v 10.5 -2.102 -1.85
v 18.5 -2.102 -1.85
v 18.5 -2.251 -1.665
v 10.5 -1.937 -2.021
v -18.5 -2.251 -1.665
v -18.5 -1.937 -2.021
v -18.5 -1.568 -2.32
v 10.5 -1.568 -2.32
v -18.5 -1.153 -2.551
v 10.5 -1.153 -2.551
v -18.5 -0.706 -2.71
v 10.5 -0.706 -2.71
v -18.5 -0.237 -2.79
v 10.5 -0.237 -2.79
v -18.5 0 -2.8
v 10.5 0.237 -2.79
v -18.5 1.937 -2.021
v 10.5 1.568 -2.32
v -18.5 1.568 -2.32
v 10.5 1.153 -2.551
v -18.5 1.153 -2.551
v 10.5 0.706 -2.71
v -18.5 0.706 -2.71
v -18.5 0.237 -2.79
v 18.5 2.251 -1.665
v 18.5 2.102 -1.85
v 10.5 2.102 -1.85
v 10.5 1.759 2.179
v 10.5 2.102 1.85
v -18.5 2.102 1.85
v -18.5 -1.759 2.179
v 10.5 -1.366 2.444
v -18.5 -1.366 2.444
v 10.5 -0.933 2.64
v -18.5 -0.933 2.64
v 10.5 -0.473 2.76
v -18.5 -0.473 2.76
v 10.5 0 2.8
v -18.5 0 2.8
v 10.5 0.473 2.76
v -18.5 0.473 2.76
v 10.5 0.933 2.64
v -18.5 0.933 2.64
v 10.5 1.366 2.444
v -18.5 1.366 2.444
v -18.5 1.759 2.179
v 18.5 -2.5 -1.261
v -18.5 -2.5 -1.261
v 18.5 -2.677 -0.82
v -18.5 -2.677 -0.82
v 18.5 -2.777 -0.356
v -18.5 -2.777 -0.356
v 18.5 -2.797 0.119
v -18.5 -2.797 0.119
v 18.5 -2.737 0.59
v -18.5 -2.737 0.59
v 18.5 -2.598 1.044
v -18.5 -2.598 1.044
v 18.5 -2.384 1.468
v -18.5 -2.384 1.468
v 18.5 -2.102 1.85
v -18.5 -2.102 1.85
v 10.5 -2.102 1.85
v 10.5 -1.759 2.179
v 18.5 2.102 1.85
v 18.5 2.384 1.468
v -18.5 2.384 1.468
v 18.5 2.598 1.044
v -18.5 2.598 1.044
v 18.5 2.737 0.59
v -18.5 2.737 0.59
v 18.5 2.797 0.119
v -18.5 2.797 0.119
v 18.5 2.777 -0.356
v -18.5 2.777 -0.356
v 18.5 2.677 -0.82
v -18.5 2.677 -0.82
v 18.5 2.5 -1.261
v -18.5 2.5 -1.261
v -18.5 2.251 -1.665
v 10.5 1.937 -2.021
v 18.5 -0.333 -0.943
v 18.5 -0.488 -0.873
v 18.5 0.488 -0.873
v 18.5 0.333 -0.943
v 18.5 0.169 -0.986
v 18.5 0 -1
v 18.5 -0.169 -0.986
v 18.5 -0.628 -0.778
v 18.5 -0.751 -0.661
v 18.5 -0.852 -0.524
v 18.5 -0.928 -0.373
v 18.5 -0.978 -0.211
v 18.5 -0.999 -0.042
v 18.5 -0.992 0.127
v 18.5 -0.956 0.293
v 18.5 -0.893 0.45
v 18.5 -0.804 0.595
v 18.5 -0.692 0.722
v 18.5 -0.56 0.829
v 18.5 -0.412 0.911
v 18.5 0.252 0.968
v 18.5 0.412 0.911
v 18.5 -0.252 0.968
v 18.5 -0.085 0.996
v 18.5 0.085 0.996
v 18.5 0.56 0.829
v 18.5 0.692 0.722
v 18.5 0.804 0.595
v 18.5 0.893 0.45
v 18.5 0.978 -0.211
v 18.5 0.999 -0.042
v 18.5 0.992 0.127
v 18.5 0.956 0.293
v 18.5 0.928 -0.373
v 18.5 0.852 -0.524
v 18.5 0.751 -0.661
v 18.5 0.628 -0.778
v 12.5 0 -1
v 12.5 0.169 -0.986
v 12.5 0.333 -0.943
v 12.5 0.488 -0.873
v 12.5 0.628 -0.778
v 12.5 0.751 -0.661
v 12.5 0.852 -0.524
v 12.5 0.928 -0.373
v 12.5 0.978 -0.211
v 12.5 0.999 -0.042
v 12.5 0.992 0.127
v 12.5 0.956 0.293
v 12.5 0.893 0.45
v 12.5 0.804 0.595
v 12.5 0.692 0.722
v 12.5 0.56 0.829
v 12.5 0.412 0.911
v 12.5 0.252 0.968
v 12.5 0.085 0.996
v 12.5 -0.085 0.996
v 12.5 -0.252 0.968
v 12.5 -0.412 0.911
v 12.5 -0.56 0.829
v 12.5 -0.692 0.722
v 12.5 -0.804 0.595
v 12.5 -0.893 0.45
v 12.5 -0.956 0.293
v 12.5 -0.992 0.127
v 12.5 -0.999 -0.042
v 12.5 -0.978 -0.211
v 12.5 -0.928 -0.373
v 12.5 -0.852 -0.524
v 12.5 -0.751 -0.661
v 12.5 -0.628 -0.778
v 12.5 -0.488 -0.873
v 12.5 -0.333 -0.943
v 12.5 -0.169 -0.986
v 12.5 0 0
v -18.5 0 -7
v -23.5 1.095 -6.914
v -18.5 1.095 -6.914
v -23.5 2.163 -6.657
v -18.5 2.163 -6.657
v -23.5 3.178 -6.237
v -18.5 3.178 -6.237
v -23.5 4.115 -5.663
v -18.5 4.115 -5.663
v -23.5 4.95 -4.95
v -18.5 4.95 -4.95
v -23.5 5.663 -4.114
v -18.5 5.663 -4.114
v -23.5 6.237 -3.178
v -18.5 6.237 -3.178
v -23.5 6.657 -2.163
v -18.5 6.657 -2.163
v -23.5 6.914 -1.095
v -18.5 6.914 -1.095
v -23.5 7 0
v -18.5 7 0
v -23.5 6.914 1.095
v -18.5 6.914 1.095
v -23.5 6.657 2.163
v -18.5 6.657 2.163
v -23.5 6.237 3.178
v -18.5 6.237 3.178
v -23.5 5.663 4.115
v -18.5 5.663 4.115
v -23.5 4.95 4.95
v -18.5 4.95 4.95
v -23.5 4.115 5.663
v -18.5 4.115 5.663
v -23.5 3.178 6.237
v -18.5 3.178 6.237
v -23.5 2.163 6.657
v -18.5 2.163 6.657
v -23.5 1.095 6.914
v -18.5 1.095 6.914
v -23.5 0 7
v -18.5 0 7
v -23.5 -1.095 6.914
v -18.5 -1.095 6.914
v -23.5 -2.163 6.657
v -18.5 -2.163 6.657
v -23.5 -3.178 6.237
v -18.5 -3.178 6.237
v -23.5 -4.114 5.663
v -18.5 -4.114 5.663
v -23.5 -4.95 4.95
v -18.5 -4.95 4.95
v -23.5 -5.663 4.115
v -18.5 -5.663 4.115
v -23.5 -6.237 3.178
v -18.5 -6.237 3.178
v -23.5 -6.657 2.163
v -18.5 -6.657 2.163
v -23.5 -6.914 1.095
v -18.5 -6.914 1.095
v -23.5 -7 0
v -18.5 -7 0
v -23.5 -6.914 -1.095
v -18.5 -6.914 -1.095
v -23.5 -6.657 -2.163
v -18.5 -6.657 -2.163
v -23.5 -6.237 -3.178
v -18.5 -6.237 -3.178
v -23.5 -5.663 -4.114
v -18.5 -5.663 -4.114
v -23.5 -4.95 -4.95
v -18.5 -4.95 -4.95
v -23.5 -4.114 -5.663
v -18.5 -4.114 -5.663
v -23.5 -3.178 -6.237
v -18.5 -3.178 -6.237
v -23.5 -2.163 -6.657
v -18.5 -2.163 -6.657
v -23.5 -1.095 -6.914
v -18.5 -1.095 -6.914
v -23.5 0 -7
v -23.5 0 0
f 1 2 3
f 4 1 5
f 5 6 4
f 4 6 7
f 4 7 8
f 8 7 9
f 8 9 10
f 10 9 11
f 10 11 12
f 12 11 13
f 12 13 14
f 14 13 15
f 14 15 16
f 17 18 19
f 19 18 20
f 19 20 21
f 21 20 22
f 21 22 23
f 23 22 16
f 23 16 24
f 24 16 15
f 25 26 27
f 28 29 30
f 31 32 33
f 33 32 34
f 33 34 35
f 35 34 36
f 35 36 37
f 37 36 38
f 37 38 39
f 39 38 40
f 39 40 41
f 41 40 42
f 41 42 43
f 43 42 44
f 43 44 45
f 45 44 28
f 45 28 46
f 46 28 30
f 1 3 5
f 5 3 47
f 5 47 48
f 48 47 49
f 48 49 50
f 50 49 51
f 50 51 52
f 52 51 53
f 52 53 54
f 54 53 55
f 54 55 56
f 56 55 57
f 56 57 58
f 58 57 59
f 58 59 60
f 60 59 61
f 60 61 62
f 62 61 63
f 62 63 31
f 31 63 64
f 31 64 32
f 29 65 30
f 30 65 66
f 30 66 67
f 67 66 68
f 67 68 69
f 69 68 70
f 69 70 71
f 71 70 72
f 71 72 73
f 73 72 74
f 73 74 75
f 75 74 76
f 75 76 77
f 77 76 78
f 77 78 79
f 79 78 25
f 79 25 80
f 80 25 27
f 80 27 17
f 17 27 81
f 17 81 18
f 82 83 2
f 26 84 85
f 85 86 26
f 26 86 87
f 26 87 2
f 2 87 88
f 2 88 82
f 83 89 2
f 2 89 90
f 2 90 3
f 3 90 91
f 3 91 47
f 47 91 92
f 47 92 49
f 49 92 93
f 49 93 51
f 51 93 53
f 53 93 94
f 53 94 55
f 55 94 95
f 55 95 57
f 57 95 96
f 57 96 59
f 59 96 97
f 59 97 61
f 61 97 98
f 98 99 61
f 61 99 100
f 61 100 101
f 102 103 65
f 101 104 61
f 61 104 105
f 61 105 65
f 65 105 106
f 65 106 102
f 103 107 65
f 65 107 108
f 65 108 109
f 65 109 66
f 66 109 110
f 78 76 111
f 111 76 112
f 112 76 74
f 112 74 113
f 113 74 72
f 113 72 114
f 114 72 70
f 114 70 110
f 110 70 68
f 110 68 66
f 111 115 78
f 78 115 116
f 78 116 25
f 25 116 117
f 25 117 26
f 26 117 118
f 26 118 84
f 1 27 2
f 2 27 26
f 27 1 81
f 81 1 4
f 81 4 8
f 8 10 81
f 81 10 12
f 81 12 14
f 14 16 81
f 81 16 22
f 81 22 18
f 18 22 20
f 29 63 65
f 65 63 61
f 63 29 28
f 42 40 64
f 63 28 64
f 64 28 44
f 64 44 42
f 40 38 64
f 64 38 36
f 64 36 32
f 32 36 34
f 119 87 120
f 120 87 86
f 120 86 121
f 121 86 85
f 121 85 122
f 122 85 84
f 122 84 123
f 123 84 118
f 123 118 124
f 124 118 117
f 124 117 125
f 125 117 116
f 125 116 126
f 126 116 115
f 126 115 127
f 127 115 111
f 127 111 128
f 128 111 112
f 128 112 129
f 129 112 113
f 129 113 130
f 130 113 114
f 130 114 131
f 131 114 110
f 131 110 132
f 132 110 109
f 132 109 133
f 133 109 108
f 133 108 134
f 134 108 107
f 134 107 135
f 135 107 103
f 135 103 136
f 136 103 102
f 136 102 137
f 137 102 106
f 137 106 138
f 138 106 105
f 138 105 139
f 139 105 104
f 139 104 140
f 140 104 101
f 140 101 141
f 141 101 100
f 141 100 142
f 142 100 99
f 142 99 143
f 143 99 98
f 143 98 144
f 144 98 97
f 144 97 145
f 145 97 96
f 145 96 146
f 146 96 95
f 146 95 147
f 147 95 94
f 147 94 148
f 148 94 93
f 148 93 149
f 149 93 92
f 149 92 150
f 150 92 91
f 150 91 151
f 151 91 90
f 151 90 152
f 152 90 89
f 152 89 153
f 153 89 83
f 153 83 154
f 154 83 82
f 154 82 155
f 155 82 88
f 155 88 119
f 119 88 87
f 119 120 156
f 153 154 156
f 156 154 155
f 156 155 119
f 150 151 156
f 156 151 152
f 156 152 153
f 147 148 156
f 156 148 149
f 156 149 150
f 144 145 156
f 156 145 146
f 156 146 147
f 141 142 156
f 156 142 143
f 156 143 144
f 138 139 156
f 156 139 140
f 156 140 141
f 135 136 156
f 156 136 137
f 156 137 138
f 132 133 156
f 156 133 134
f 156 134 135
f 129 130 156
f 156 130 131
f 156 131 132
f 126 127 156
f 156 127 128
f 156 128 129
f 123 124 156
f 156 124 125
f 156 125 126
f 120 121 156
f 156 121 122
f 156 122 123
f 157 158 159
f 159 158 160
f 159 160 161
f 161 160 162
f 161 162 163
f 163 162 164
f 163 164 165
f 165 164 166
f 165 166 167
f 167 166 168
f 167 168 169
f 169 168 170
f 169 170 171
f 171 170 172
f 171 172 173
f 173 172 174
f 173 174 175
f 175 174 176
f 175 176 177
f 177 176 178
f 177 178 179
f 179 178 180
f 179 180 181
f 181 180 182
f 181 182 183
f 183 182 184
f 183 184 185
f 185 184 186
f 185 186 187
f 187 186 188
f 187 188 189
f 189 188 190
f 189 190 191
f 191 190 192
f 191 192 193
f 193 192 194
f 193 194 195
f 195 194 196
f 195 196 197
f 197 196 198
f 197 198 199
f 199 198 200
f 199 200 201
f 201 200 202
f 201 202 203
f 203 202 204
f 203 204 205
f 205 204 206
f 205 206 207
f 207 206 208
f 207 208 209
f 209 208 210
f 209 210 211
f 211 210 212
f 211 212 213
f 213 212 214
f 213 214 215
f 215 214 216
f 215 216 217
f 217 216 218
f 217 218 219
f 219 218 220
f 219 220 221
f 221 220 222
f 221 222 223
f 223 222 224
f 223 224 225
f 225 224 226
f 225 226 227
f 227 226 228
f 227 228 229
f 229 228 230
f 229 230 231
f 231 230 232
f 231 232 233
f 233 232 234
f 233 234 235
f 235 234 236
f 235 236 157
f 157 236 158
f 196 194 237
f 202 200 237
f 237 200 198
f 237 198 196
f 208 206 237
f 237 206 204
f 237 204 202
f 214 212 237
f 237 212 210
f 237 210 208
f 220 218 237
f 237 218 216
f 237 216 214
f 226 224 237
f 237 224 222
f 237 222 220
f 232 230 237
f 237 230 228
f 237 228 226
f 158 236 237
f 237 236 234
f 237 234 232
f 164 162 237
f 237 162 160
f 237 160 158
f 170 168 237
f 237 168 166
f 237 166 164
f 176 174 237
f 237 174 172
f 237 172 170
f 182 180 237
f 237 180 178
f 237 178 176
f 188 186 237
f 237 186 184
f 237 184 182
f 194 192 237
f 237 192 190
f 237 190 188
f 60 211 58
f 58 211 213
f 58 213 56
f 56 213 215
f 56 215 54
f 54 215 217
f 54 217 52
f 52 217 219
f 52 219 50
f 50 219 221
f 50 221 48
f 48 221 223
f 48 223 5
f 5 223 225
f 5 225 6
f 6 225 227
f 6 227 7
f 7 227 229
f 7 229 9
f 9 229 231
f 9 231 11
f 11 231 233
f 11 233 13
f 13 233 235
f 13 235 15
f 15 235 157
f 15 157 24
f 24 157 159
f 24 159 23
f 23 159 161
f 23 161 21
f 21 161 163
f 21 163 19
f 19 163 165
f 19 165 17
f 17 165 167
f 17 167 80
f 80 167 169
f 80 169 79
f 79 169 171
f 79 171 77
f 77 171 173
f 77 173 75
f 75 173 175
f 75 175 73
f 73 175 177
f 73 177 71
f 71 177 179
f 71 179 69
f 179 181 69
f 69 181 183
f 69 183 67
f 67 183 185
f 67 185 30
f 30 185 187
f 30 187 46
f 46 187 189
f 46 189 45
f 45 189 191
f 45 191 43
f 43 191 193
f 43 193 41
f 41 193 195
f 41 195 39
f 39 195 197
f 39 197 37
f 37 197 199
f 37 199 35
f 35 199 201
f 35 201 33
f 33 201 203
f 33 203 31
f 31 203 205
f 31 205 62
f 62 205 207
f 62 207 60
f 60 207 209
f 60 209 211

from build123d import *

# Parameters (mm, degrees)
SKETCH1_R           = 2.8
BOSS_EXTRUDE1_DEPTH = 18.5
CUT_EXTRUDE1_DEPTH  = 8
SKETCH3_R           = 1
CUT_EXTRUDE2_DEPTH  = 6
SKETCH5_R           = 7
BOSS_EXTRUDE2_DEPTH = 5


with BuildPart() as part:
    # Sketch1 → Boss-Extrude1 (new, symmetric)
    with BuildSketch(Plane(origin=(0, 0, 0), x_dir=(0, 0, -1), z_dir=(1, 0, 0))):
        Circle(SKETCH1_R)
    extrude(amount=BOSS_EXTRUDE1_DEPTH, both=True)

    # Sketch2 → Cut-Extrude1 (cut)
    with BuildSketch(Plane(origin=(18.5, 0, 0), x_dir=(0, 0, -1), z_dir=(1, 0, 0))):
        with BuildLine():
            Line((-1.85, 2.101784956), (-1.85, -2.101784956))
            ThreePointArc((-1.85, -2.101784956), (-2.8, 0), (-1.85, 2.101784956))
        make_face()
        with BuildLine():
            Line((1.85, 2.101784956), (1.85, -2.101784956))
            ThreePointArc((1.85, -2.101784956), (2.8, 0), (1.85, 2.101784956))
        make_face()
    extrude(amount=-CUT_EXTRUDE1_DEPTH, mode=Mode.SUBTRACT)

    # Sketch3 → Cut-Extrude2 (cut)
    with BuildSketch(Plane(origin=(18.5, 0, 0), x_dir=(0, 0, -1), z_dir=(1, 0, 0))):
        Circle(SKETCH3_R)
    extrude(amount=-CUT_EXTRUDE2_DEPTH, mode=Mode.SUBTRACT)

    # Sketch5 → Boss-Extrude2 (add)
    with BuildSketch(Plane.ZY.offset(18.5)):
        Circle(SKETCH5_R)
    extrude(amount=BOSS_EXTRUDE2_DEPTH)


solid = part.part
